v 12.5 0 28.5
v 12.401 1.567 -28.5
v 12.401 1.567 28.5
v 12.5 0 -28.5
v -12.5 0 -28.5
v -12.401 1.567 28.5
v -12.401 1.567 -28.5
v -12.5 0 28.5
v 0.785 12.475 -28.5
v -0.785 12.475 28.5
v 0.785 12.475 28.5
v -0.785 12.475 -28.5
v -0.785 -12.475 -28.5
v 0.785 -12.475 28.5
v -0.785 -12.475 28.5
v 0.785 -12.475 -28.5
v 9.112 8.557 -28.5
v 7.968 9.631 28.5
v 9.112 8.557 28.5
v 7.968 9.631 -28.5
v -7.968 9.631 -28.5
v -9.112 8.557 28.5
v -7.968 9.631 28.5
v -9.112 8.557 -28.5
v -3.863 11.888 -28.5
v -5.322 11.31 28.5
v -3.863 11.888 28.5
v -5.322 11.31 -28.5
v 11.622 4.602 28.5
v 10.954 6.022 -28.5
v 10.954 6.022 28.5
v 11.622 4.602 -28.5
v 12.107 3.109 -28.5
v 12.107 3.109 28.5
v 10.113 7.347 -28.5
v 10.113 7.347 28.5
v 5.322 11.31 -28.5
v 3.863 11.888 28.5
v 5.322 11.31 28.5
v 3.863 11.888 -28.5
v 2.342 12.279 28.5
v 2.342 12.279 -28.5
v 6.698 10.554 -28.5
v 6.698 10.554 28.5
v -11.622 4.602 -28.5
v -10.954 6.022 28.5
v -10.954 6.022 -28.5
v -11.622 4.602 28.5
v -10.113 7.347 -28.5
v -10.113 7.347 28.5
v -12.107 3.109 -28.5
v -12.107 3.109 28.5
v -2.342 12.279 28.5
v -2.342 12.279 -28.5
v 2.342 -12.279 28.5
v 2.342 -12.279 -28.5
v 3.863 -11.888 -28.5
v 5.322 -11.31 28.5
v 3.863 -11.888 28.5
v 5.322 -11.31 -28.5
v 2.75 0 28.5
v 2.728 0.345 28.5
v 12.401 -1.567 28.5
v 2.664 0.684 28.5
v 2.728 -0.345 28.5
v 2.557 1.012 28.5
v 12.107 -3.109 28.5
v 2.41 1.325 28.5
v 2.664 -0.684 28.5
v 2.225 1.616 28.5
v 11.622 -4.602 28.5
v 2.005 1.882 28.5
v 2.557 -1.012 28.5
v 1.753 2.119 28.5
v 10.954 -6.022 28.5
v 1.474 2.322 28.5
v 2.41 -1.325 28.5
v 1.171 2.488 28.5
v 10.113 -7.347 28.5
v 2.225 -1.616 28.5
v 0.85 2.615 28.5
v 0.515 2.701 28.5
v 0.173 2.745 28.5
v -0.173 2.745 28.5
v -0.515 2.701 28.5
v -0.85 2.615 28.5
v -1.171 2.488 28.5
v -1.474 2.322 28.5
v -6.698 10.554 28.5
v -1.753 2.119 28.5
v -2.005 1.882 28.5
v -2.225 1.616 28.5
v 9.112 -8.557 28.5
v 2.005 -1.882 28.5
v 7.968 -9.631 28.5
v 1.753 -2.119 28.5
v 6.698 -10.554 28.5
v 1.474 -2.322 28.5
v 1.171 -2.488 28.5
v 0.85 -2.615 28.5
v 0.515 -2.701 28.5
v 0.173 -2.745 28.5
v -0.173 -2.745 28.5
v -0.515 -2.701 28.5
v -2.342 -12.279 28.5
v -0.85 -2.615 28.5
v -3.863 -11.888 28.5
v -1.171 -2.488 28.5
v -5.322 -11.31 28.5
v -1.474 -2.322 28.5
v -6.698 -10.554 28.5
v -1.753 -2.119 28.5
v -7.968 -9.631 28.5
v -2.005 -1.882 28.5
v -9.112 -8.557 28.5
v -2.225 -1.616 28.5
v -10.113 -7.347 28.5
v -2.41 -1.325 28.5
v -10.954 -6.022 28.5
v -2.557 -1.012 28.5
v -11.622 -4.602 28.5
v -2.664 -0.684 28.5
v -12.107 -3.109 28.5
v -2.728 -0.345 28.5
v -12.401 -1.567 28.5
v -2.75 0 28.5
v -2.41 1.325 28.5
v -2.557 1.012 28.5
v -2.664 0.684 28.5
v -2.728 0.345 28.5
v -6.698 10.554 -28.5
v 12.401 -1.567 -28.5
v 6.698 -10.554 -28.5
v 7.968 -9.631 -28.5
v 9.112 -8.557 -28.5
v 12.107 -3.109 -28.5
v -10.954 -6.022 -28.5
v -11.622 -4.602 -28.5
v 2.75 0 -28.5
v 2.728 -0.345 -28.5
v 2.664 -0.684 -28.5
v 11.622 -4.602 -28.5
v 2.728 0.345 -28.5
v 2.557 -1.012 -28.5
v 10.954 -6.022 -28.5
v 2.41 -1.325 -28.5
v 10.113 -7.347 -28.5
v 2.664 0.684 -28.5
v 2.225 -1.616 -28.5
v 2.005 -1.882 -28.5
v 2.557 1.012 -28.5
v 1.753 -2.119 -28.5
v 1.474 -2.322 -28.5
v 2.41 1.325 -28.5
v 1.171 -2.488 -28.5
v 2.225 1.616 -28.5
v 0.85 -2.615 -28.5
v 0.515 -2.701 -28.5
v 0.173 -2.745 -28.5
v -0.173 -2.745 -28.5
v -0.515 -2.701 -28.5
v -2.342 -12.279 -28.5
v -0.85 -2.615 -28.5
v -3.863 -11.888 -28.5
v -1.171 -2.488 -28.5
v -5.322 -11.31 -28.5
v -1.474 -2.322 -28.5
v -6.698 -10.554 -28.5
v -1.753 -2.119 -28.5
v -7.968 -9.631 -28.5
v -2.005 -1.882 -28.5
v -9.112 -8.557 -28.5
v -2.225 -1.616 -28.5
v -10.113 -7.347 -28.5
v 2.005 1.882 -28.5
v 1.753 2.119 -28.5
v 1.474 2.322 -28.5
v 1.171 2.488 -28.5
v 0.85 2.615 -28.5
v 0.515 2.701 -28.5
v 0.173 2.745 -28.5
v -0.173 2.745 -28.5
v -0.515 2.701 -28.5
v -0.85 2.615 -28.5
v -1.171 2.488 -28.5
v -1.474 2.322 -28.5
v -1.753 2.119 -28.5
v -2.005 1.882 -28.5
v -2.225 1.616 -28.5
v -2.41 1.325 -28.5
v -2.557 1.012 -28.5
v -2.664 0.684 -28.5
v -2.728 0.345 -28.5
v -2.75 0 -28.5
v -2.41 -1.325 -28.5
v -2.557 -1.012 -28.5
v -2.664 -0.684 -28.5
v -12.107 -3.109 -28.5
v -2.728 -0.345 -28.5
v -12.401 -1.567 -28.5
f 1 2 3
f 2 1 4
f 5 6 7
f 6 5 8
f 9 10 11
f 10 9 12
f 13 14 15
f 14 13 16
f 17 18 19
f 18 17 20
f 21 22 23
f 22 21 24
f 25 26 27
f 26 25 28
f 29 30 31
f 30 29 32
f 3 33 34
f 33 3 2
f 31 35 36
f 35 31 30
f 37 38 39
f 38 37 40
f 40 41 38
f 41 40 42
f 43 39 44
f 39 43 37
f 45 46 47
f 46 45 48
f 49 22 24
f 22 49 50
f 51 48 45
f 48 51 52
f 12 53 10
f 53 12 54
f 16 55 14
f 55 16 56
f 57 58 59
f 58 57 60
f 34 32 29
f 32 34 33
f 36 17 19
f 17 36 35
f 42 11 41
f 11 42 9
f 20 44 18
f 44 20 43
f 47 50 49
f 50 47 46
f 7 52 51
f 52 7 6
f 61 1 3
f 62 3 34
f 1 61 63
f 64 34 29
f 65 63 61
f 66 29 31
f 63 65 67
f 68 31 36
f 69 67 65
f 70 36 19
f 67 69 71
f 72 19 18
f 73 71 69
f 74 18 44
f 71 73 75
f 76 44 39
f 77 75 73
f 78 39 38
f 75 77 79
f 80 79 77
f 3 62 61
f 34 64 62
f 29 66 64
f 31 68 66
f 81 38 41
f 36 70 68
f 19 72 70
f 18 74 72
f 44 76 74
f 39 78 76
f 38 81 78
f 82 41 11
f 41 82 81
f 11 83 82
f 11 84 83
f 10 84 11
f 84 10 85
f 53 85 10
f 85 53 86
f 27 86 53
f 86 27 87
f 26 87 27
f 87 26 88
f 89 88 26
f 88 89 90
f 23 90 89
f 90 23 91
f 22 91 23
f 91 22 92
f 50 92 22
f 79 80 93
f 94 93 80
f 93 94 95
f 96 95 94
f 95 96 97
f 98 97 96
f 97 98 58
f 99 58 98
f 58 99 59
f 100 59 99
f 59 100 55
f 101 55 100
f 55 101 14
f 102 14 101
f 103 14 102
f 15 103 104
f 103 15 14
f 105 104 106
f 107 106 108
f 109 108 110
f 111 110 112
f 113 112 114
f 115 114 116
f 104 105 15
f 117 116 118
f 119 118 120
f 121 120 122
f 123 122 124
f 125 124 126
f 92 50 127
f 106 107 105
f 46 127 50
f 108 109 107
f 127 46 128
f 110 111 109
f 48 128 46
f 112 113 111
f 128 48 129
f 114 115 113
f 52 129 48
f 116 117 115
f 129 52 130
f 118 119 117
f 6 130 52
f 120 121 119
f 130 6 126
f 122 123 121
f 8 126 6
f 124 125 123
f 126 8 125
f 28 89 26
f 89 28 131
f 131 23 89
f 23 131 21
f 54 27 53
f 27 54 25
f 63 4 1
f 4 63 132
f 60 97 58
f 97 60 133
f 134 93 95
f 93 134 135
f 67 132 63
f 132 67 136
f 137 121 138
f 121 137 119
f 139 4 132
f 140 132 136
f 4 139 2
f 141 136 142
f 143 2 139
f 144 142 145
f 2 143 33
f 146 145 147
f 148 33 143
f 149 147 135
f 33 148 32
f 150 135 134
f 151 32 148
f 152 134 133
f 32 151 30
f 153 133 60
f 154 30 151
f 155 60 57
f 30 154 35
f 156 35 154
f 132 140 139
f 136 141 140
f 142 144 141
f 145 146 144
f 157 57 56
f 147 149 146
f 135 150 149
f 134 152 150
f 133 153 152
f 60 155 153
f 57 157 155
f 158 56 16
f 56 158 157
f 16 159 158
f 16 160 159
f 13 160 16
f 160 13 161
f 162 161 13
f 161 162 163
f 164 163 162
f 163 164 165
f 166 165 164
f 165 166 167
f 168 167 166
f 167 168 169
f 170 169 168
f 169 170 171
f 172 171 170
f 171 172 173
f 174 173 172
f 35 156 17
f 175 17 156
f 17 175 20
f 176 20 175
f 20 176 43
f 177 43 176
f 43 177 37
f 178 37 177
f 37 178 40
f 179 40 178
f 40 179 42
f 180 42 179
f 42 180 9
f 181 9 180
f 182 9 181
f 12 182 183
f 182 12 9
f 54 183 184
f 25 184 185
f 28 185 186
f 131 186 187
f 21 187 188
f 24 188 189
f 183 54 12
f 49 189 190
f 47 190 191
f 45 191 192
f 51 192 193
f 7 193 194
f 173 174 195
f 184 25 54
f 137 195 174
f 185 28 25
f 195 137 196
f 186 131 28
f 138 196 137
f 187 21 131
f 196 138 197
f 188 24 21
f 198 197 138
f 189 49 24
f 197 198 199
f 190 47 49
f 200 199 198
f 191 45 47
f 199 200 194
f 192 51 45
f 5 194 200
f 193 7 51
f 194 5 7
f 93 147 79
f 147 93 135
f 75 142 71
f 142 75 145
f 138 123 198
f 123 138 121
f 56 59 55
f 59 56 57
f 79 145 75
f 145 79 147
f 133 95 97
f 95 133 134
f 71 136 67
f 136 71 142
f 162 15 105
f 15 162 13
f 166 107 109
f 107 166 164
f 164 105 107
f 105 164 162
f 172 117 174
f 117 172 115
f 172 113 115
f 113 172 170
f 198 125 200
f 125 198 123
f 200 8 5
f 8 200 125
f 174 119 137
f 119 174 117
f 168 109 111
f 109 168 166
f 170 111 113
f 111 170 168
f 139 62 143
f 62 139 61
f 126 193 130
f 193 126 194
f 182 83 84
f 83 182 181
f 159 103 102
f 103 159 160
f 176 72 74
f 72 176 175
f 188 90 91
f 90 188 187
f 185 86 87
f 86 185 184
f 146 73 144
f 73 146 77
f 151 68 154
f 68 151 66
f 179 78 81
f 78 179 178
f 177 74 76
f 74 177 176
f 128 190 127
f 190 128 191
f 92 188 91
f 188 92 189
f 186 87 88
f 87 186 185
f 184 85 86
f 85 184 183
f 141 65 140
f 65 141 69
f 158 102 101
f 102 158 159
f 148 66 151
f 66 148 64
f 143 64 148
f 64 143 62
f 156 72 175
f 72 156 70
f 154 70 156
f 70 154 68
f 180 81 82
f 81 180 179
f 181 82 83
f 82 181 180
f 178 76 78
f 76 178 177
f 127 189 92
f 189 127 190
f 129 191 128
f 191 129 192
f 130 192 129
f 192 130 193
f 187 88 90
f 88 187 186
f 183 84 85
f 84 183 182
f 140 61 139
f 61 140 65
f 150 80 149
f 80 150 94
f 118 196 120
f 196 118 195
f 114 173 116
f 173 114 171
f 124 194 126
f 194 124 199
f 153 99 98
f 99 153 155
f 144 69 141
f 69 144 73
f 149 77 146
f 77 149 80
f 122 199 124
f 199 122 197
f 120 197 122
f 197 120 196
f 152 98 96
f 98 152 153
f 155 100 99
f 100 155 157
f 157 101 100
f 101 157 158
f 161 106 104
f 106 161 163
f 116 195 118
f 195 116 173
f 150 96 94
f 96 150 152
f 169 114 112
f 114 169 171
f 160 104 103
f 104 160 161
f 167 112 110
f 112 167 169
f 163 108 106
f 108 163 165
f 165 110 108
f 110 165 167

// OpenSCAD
$fn = 50;


difference() {
	union() {
		translate(v = [0, 0, -28.5000000000]) {
			cylinder(h = 57, r = 12.5000000000);
		}
	}
	union() {
		translate(v = [0, 0, -100.0000000000]) {
			cylinder(h = 200, r = 2.7500000000);
		}
	}
}
